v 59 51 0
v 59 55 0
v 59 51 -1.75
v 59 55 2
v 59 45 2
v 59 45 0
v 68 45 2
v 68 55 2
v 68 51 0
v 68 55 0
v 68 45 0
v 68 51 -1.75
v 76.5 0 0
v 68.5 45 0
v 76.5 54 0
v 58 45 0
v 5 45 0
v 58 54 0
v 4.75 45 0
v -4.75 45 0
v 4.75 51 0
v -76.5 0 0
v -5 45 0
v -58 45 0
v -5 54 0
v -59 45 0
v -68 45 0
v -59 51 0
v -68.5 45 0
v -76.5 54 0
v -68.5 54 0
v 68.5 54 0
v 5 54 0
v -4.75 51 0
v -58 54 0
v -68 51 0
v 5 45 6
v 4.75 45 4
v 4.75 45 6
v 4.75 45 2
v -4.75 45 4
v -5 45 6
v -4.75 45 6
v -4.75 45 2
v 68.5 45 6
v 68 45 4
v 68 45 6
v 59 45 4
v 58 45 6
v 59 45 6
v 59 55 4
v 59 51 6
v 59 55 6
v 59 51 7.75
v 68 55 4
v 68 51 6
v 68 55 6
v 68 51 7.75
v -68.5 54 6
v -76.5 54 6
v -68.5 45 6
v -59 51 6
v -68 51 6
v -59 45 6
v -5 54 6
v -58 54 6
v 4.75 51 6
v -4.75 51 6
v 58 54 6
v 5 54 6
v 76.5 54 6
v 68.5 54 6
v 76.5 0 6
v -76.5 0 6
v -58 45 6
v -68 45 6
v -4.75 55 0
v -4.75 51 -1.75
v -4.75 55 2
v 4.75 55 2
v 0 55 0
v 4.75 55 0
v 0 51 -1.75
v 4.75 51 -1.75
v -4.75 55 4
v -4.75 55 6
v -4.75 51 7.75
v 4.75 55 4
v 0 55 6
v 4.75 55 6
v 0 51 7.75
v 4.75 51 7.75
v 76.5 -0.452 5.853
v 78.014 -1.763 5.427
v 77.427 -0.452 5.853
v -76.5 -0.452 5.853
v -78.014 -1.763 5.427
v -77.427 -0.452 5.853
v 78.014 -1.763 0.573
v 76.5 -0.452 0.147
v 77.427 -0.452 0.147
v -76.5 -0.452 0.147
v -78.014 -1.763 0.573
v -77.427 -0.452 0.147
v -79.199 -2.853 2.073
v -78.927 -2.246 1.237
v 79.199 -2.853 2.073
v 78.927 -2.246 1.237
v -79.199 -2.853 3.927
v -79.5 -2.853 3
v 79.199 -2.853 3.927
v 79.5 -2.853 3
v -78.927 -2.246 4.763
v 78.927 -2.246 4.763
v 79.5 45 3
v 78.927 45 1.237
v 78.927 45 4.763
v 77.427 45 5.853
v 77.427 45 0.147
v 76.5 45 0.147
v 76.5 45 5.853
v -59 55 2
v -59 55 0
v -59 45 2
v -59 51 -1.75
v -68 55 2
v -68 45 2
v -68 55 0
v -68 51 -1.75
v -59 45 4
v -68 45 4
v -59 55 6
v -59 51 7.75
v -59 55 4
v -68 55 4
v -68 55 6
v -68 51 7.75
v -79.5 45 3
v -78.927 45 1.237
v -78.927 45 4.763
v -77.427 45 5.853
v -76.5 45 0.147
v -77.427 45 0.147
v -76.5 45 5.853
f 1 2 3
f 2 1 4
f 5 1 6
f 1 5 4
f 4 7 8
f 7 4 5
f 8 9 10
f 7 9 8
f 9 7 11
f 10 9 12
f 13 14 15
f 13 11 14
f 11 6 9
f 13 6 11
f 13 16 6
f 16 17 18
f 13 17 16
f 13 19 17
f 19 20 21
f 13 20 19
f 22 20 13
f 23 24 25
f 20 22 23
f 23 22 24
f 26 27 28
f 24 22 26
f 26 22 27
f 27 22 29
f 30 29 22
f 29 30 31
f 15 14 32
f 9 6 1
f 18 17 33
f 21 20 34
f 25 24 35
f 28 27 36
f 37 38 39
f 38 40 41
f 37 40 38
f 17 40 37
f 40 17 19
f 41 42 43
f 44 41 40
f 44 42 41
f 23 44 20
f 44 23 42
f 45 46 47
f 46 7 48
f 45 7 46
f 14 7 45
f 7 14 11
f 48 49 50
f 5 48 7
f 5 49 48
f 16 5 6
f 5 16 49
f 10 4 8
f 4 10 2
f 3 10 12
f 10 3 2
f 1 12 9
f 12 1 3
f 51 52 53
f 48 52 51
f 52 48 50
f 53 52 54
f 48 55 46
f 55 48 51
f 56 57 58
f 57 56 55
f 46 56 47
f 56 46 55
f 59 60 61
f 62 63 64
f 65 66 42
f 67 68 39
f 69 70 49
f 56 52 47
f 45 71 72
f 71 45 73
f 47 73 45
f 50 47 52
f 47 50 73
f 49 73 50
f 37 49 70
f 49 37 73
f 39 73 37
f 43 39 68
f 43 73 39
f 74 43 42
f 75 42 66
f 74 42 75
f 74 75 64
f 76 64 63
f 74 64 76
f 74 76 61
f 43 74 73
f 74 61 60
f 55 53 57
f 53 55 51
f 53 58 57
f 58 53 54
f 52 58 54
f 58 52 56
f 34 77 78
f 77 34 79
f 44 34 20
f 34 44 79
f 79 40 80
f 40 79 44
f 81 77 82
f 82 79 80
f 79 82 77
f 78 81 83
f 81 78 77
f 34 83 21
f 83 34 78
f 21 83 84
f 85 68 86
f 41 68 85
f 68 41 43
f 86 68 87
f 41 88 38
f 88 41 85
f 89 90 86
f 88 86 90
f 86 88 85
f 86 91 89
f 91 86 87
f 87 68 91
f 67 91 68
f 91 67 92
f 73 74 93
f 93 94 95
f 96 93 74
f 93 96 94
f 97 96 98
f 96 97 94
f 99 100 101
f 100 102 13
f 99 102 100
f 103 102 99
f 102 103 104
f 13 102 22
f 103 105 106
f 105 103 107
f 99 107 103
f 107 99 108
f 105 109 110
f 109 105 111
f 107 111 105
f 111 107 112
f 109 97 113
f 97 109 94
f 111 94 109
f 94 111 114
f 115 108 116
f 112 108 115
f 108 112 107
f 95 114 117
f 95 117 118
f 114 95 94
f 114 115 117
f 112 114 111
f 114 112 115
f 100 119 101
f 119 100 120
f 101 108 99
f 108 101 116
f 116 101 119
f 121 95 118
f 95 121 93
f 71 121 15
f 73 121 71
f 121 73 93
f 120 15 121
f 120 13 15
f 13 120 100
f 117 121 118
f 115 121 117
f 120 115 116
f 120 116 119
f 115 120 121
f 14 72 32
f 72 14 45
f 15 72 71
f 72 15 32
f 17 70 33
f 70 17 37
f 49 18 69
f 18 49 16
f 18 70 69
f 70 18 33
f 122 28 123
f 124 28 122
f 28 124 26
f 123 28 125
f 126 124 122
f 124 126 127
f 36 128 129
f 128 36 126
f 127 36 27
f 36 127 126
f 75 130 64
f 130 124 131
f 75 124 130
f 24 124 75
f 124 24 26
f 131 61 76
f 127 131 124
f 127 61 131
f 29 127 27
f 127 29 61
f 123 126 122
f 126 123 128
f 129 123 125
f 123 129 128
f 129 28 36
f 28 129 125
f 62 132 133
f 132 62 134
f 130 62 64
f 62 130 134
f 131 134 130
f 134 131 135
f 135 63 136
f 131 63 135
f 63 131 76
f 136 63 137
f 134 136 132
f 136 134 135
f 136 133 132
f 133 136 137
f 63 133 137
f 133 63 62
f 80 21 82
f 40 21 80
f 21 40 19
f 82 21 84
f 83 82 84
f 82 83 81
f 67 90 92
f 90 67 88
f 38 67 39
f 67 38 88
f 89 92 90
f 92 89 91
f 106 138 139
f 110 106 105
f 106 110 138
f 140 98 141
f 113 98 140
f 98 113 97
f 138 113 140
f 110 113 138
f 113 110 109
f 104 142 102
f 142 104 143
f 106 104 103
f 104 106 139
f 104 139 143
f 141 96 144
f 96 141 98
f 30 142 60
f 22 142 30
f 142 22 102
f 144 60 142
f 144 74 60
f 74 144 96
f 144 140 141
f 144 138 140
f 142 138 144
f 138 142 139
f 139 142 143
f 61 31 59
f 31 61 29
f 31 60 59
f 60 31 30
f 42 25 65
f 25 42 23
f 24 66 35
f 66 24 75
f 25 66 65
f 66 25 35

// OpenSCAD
module clip() {
    union() {
        translate([0, 0, -3])
        cube([9,10,2]);
        
        translate([0,6,-3])
        rotate([0,90,0])
        linear_extrude(height=9) {
            polygon(points=[
                [0,0], [0,4], [1.75,0]
            ]);
        }
    }
}

module tab() {
    translate([0,0,3])
    union() {
        clip();
        mirror(v=[0,0,1]) {
            clip();
        }
    }
}

module stand() {
    union() {
        translate([59,45,0])
        tab();
        
        translate([-4.75,45,0])
        tab();
        
        cube([76.5,45,6]);

        translate([76.5-8,45,0])
        cube([8, 9, 6]);
        
        translate([5,45,0])
        cube([53, 9, 6]);
        
        union() {
            translate([0,0,3])
            rotate([0,90,0])
            cylinder(h=76.5,d=6);
            
            translate([76.5,0,3])
            rotate([-90,0,0])
            cylinder(h=45,d=6);
        
            intersection() {
                translate([0,0,3])
                rotate([0,90,0])
                cylinder(h=79.5,d=6);
                
                translate([76.5,-3,3])
                rotate([-90,0,0])
                cylinder(h=48,d=6);
            }
        }
    }
}

    stand();
    mirror(v=[1,0,0]) {
        stand();
    }
